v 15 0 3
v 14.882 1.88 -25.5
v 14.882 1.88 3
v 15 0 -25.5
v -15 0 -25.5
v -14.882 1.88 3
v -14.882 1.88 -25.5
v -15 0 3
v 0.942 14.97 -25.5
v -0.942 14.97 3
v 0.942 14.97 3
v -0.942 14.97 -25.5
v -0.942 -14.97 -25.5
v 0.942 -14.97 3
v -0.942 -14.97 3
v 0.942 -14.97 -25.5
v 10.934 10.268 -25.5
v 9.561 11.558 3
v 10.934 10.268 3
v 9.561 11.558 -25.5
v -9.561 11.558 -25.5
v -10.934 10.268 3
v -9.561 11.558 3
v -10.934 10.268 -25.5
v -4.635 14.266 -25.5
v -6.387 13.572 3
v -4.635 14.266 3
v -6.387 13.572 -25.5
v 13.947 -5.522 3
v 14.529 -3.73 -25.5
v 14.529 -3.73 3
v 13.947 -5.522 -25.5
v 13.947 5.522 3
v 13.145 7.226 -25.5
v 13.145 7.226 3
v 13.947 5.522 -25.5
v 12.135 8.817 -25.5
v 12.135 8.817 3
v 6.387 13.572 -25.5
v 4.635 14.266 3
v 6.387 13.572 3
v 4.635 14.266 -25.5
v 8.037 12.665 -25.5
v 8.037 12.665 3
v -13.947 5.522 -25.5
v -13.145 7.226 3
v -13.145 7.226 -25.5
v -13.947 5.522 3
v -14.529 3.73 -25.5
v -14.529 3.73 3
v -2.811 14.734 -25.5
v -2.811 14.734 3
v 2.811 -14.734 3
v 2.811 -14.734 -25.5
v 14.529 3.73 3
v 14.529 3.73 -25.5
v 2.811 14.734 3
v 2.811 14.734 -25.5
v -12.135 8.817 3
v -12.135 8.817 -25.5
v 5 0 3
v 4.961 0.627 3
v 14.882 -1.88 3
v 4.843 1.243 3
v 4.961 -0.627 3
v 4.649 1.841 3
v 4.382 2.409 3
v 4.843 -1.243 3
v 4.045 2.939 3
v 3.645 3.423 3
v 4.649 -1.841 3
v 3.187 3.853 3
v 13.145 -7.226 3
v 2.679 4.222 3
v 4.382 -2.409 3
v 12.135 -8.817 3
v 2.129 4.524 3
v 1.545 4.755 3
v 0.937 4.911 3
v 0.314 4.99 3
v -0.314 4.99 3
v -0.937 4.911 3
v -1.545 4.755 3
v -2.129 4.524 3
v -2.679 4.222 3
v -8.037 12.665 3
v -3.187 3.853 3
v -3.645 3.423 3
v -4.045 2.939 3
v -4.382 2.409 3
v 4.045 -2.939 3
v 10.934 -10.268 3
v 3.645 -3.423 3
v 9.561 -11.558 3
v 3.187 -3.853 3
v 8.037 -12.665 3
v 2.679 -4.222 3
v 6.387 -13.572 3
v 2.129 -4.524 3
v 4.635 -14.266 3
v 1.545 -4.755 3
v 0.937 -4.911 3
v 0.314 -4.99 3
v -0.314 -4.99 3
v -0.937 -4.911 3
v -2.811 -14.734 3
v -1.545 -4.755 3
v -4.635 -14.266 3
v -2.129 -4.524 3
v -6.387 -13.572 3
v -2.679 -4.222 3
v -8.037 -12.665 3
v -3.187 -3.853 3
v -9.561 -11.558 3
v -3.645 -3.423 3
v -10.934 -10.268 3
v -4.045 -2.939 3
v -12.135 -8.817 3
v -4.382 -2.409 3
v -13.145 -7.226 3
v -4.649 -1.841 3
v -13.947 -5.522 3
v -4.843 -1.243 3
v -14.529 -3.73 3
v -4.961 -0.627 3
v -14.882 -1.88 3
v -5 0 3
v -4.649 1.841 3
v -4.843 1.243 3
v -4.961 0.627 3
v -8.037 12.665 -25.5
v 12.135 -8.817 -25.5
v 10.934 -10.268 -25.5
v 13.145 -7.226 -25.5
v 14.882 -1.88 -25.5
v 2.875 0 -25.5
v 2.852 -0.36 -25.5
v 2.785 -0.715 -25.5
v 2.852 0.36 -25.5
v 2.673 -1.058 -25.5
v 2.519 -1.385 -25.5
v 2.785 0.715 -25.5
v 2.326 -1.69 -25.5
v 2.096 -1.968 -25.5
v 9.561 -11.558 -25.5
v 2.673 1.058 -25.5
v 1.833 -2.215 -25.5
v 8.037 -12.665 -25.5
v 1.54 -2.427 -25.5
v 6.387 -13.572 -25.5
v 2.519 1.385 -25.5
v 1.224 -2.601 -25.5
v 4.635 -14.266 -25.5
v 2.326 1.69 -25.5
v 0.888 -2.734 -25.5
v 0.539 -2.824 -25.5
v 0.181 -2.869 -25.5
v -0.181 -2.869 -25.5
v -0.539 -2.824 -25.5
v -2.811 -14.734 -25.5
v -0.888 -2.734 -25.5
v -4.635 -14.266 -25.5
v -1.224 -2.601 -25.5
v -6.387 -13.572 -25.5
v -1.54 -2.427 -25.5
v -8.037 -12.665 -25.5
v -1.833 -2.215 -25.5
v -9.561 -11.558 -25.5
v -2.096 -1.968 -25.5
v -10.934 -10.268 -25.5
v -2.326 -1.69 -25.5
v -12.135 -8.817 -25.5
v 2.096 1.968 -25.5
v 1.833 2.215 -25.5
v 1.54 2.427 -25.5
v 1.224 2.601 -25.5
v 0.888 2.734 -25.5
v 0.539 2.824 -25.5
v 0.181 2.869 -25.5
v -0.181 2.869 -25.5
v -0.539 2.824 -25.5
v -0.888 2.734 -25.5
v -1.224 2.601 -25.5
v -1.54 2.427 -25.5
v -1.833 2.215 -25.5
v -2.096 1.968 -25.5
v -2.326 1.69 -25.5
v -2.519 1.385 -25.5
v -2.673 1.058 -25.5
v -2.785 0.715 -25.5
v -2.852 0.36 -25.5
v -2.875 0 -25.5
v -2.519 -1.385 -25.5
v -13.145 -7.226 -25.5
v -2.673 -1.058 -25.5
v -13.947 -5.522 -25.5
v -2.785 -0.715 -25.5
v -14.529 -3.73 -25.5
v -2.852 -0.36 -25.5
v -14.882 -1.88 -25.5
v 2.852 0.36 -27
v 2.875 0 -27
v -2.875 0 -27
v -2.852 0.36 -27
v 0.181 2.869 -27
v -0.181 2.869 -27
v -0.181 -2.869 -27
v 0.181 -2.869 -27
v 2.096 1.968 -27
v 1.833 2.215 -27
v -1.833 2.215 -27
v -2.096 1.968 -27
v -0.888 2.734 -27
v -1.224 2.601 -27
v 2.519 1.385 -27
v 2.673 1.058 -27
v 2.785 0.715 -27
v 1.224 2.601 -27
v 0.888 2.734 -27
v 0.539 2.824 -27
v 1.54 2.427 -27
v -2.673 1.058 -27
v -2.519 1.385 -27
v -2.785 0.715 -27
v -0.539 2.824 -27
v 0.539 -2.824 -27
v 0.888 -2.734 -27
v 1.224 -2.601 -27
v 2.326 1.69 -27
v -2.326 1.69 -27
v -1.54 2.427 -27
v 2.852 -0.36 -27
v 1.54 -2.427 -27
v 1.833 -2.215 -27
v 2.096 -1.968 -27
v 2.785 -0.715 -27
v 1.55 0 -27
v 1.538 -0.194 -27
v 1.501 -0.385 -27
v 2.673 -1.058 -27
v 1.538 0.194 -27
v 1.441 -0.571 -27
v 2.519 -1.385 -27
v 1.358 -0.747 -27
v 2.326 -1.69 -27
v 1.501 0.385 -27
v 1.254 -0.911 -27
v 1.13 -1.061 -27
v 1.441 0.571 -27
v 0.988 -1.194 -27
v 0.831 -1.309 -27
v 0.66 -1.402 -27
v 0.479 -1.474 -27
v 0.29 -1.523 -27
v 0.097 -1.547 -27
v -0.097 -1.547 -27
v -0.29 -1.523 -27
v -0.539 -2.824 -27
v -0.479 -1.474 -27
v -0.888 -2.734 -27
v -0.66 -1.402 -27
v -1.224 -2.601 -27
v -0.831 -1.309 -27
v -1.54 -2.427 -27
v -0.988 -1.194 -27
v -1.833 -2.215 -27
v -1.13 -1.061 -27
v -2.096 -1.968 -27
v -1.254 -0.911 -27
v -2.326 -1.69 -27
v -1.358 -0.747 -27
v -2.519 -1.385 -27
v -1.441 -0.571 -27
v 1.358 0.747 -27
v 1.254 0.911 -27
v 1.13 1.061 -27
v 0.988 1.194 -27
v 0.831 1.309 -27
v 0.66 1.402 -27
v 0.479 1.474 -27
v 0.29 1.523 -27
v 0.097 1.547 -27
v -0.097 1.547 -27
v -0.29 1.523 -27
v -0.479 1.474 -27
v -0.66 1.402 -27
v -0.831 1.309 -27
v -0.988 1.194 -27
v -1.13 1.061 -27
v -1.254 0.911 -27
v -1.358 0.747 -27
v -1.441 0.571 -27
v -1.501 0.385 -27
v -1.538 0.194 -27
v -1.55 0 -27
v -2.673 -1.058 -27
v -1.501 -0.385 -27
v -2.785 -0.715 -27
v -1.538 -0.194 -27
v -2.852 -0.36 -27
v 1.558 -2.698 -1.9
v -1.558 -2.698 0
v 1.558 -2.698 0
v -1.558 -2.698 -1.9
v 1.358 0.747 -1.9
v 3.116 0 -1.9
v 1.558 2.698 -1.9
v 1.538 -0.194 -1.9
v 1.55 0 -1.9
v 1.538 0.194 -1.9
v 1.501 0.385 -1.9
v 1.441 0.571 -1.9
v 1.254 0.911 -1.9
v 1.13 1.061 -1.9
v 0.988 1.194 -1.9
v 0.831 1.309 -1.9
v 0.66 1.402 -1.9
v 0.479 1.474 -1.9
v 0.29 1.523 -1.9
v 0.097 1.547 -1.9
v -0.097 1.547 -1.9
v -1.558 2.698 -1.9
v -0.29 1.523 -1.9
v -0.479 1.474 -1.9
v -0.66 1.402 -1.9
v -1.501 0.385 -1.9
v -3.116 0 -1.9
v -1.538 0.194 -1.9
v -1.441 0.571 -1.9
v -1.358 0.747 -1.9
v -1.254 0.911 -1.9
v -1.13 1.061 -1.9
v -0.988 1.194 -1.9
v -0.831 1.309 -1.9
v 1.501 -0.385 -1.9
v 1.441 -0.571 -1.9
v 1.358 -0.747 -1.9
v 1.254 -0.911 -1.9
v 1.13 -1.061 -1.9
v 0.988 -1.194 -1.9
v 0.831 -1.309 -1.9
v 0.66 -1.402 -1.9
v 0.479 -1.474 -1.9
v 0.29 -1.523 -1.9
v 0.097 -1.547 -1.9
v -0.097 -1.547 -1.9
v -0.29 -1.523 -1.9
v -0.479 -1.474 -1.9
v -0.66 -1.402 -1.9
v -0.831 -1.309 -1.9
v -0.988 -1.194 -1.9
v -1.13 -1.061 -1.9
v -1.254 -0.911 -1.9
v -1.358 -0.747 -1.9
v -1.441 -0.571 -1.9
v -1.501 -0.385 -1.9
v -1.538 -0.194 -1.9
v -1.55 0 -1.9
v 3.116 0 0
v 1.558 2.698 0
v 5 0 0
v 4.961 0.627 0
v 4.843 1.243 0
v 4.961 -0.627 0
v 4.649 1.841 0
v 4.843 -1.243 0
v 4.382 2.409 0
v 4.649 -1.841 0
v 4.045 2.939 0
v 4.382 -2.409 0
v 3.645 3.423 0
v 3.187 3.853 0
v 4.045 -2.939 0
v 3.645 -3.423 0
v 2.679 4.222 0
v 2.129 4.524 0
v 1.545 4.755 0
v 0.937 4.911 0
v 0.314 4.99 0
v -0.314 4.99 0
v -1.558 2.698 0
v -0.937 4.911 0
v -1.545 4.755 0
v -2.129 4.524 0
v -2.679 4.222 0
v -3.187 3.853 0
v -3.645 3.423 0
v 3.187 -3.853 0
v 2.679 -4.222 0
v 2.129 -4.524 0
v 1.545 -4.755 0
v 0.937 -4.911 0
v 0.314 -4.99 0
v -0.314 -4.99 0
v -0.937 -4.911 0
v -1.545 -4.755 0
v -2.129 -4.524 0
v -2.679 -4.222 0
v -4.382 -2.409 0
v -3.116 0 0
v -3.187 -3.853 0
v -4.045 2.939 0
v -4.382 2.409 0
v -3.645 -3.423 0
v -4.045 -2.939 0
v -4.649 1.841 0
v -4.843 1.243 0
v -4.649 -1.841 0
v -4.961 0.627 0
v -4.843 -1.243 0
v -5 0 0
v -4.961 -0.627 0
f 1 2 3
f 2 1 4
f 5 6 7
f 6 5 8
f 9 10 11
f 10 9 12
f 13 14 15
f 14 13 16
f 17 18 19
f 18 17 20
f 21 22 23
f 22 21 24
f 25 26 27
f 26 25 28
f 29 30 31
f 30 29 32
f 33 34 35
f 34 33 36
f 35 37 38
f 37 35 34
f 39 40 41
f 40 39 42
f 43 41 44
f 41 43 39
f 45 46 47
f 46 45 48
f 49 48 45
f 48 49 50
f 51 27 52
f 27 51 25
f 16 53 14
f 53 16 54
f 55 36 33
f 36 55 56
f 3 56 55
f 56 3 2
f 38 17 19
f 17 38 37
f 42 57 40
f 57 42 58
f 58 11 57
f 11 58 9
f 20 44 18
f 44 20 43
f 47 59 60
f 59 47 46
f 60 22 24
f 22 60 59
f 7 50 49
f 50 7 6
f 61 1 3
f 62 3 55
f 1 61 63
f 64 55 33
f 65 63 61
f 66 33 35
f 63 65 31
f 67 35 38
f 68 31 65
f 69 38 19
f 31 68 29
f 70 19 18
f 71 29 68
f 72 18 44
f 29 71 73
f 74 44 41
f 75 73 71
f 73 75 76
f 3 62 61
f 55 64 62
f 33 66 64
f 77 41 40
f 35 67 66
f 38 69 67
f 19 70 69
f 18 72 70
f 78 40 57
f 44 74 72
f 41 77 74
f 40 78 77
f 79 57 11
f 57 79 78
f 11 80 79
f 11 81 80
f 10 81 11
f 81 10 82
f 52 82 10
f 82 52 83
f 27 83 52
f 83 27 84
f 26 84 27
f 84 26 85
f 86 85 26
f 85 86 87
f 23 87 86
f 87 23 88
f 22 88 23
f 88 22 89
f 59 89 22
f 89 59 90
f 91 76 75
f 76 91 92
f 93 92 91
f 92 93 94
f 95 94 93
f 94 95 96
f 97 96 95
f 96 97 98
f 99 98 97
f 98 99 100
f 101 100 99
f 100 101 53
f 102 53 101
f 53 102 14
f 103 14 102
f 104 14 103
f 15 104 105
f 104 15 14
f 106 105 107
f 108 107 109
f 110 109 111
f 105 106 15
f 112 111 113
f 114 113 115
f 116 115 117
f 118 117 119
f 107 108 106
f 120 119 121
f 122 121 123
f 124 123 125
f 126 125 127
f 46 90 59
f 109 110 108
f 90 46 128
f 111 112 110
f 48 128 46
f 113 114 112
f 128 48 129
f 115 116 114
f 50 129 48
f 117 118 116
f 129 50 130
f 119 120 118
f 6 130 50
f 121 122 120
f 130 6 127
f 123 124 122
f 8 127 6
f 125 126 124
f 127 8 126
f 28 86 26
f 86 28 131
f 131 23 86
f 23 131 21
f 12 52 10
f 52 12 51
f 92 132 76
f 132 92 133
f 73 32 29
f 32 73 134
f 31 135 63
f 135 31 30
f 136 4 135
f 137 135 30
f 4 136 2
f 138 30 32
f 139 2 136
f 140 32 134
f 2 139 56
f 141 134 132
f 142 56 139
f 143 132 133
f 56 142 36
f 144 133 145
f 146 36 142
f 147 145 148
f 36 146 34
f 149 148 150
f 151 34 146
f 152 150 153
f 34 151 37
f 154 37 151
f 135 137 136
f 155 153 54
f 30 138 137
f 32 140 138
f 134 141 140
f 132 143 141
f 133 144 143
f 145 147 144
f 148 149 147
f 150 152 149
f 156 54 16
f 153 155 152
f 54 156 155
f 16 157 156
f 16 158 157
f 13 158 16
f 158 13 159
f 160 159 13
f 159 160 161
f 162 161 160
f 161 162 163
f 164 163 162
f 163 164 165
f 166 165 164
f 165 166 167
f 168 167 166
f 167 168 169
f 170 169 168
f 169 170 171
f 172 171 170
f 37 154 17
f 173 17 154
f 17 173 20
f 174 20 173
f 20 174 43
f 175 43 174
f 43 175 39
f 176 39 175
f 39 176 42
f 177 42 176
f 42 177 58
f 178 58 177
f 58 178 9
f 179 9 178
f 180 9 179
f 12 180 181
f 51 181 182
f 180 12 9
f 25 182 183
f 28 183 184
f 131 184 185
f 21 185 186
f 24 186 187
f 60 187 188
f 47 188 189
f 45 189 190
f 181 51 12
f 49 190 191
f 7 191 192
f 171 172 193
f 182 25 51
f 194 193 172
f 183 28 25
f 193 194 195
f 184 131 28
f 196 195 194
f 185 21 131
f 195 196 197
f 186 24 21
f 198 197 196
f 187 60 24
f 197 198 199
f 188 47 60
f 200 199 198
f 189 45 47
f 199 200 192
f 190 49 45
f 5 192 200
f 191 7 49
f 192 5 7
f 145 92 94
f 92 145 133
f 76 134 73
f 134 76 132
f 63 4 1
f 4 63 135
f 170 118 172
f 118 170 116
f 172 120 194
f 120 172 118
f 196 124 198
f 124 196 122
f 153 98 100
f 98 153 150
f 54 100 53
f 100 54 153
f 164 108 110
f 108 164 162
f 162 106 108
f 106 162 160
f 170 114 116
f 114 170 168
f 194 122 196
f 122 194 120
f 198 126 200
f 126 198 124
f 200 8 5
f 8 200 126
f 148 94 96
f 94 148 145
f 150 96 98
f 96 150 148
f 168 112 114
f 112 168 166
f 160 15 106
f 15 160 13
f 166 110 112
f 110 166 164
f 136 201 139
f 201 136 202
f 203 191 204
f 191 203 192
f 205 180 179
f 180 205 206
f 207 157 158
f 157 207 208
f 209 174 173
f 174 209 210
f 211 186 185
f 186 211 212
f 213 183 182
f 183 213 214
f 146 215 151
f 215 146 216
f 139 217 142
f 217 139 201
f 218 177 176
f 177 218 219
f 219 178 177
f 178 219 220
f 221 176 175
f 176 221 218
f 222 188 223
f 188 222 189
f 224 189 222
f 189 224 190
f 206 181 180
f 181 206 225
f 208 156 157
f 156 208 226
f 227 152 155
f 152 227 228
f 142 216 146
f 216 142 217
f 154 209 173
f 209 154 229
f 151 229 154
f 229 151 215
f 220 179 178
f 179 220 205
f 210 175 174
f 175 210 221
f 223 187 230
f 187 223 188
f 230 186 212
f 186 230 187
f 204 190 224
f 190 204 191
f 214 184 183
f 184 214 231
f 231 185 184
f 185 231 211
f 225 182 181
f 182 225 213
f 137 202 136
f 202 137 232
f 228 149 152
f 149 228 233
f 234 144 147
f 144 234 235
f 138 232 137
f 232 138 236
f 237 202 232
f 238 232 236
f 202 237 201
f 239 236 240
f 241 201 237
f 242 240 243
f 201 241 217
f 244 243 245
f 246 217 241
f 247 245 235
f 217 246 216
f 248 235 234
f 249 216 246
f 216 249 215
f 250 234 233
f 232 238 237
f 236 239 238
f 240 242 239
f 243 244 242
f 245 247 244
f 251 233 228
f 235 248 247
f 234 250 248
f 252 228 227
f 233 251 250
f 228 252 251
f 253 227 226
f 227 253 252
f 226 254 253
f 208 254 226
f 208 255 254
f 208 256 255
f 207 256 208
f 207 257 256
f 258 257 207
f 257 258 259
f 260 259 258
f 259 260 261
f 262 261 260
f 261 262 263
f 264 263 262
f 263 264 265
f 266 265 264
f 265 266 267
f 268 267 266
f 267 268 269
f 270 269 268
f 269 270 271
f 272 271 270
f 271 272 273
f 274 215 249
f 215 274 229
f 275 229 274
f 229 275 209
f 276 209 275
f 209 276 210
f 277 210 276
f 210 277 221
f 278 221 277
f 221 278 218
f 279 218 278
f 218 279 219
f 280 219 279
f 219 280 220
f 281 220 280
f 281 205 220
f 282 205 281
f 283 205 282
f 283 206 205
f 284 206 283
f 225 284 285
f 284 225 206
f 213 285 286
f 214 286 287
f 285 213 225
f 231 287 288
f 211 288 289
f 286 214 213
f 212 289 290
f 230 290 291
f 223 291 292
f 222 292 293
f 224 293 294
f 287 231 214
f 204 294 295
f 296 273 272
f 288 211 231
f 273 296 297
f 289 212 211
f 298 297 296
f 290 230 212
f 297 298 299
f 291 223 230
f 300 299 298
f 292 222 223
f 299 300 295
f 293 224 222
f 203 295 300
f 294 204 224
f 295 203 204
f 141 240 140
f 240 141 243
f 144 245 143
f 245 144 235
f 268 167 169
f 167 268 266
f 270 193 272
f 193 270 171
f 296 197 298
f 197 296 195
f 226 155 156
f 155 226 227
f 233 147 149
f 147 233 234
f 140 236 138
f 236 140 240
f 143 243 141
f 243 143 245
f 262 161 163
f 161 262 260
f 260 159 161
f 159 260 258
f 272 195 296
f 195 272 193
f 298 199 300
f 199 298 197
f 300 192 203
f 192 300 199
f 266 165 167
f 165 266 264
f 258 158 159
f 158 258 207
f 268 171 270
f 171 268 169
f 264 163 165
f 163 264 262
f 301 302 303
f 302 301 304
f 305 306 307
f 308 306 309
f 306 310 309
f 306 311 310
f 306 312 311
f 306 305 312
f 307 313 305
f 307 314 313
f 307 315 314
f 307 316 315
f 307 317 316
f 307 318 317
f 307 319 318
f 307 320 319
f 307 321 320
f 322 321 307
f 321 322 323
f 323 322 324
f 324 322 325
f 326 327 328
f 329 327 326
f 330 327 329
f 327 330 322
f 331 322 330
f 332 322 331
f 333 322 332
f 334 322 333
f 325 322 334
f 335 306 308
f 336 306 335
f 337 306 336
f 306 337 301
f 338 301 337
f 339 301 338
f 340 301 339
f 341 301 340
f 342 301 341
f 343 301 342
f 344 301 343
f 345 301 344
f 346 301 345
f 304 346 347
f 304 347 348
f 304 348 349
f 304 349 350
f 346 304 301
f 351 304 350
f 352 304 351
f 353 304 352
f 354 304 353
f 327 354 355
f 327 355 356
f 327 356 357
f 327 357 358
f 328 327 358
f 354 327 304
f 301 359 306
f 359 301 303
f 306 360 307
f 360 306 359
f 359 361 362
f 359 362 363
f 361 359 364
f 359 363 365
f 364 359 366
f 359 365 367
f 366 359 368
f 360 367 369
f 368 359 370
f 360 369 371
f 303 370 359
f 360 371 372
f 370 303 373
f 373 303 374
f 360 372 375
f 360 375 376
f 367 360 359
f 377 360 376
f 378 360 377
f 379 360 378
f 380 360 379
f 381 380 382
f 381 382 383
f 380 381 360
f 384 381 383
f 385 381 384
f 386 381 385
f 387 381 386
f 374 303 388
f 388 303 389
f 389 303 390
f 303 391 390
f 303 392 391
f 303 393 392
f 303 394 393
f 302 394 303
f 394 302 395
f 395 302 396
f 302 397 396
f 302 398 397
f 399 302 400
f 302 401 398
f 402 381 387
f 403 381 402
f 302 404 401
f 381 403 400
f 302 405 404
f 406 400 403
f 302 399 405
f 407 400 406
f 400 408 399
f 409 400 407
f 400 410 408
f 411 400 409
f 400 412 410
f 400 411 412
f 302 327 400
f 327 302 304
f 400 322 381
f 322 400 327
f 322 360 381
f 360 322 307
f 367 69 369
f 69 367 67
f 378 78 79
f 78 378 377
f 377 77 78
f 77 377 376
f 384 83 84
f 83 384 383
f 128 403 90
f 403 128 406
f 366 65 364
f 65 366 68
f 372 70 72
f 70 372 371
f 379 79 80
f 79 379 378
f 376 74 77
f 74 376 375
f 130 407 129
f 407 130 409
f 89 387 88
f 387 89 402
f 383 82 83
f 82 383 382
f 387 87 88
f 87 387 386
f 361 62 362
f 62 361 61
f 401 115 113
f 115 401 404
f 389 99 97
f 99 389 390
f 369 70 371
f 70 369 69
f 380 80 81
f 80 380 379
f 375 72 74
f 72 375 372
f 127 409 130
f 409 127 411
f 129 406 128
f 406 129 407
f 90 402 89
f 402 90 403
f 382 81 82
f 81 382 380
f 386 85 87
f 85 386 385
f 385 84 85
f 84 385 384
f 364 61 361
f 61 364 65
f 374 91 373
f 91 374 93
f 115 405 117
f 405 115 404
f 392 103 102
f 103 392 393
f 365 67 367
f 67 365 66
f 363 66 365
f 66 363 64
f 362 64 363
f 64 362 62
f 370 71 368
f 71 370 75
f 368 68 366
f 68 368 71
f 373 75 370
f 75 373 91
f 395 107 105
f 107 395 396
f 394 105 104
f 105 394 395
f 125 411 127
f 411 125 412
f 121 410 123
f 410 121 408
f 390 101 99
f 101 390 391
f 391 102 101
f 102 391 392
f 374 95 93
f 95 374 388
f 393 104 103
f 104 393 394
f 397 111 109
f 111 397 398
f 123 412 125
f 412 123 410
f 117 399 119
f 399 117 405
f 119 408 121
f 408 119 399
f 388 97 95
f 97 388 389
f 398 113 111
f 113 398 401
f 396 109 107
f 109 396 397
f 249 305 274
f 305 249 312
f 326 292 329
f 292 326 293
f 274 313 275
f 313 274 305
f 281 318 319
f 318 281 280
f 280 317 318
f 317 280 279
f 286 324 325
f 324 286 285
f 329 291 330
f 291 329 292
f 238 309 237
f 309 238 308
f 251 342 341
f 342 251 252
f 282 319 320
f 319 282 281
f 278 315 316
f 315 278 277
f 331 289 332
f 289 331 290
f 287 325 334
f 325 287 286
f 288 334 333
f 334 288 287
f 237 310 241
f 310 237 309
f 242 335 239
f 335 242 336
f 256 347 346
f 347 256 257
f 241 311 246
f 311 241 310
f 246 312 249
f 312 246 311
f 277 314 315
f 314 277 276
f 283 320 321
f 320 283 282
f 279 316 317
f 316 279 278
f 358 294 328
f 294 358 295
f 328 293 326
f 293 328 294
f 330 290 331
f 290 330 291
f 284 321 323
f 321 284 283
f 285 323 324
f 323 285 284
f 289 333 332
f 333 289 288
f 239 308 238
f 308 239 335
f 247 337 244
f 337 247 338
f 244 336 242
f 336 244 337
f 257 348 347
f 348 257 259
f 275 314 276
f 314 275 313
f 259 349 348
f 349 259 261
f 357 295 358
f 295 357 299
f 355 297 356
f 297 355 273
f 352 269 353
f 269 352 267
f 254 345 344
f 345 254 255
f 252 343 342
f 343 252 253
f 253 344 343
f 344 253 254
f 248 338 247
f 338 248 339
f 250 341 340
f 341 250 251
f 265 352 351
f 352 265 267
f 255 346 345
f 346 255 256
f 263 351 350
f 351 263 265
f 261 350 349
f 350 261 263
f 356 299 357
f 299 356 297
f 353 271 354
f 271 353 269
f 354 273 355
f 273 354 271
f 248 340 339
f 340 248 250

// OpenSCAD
$fn = 50;

difference() {
	union() {
		translate(v = [0, 0, -25.5]) {
			cylinder(h = 28.5, r = 15.0);
		}
		#translate(v = [0, 0, -27.0]) {
			cylinder(h = 27, r = 2.875);
		}
	}
	union() {
		translate(v = [0, 0, 0]) {
			rotate(a = [0, 0, 0]) {
				difference() {
					union() {
						translate(v = [0, 0, -1.9]) {
							linear_extrude(height = 1.9) {
								polygon(points = [[3.1158, 0.0], [1.5579000000000005, 2.698361953111554], [-1.5578999999999994, 2.6983619531115544], [-3.1158, 3.815754496783323e-16], [-1.5579000000000014, -2.6983619531115535], [1.557899999999998, -2.6983619531115552]]);
							}
						}
					}
					union();
				}
			}
		}
		#cylinder(h = 3, r = 5.0);
		#translate(v = [0, 0, -100.0]) {
			cylinder(h = 200, r = 1.55);
		}
	}
}
